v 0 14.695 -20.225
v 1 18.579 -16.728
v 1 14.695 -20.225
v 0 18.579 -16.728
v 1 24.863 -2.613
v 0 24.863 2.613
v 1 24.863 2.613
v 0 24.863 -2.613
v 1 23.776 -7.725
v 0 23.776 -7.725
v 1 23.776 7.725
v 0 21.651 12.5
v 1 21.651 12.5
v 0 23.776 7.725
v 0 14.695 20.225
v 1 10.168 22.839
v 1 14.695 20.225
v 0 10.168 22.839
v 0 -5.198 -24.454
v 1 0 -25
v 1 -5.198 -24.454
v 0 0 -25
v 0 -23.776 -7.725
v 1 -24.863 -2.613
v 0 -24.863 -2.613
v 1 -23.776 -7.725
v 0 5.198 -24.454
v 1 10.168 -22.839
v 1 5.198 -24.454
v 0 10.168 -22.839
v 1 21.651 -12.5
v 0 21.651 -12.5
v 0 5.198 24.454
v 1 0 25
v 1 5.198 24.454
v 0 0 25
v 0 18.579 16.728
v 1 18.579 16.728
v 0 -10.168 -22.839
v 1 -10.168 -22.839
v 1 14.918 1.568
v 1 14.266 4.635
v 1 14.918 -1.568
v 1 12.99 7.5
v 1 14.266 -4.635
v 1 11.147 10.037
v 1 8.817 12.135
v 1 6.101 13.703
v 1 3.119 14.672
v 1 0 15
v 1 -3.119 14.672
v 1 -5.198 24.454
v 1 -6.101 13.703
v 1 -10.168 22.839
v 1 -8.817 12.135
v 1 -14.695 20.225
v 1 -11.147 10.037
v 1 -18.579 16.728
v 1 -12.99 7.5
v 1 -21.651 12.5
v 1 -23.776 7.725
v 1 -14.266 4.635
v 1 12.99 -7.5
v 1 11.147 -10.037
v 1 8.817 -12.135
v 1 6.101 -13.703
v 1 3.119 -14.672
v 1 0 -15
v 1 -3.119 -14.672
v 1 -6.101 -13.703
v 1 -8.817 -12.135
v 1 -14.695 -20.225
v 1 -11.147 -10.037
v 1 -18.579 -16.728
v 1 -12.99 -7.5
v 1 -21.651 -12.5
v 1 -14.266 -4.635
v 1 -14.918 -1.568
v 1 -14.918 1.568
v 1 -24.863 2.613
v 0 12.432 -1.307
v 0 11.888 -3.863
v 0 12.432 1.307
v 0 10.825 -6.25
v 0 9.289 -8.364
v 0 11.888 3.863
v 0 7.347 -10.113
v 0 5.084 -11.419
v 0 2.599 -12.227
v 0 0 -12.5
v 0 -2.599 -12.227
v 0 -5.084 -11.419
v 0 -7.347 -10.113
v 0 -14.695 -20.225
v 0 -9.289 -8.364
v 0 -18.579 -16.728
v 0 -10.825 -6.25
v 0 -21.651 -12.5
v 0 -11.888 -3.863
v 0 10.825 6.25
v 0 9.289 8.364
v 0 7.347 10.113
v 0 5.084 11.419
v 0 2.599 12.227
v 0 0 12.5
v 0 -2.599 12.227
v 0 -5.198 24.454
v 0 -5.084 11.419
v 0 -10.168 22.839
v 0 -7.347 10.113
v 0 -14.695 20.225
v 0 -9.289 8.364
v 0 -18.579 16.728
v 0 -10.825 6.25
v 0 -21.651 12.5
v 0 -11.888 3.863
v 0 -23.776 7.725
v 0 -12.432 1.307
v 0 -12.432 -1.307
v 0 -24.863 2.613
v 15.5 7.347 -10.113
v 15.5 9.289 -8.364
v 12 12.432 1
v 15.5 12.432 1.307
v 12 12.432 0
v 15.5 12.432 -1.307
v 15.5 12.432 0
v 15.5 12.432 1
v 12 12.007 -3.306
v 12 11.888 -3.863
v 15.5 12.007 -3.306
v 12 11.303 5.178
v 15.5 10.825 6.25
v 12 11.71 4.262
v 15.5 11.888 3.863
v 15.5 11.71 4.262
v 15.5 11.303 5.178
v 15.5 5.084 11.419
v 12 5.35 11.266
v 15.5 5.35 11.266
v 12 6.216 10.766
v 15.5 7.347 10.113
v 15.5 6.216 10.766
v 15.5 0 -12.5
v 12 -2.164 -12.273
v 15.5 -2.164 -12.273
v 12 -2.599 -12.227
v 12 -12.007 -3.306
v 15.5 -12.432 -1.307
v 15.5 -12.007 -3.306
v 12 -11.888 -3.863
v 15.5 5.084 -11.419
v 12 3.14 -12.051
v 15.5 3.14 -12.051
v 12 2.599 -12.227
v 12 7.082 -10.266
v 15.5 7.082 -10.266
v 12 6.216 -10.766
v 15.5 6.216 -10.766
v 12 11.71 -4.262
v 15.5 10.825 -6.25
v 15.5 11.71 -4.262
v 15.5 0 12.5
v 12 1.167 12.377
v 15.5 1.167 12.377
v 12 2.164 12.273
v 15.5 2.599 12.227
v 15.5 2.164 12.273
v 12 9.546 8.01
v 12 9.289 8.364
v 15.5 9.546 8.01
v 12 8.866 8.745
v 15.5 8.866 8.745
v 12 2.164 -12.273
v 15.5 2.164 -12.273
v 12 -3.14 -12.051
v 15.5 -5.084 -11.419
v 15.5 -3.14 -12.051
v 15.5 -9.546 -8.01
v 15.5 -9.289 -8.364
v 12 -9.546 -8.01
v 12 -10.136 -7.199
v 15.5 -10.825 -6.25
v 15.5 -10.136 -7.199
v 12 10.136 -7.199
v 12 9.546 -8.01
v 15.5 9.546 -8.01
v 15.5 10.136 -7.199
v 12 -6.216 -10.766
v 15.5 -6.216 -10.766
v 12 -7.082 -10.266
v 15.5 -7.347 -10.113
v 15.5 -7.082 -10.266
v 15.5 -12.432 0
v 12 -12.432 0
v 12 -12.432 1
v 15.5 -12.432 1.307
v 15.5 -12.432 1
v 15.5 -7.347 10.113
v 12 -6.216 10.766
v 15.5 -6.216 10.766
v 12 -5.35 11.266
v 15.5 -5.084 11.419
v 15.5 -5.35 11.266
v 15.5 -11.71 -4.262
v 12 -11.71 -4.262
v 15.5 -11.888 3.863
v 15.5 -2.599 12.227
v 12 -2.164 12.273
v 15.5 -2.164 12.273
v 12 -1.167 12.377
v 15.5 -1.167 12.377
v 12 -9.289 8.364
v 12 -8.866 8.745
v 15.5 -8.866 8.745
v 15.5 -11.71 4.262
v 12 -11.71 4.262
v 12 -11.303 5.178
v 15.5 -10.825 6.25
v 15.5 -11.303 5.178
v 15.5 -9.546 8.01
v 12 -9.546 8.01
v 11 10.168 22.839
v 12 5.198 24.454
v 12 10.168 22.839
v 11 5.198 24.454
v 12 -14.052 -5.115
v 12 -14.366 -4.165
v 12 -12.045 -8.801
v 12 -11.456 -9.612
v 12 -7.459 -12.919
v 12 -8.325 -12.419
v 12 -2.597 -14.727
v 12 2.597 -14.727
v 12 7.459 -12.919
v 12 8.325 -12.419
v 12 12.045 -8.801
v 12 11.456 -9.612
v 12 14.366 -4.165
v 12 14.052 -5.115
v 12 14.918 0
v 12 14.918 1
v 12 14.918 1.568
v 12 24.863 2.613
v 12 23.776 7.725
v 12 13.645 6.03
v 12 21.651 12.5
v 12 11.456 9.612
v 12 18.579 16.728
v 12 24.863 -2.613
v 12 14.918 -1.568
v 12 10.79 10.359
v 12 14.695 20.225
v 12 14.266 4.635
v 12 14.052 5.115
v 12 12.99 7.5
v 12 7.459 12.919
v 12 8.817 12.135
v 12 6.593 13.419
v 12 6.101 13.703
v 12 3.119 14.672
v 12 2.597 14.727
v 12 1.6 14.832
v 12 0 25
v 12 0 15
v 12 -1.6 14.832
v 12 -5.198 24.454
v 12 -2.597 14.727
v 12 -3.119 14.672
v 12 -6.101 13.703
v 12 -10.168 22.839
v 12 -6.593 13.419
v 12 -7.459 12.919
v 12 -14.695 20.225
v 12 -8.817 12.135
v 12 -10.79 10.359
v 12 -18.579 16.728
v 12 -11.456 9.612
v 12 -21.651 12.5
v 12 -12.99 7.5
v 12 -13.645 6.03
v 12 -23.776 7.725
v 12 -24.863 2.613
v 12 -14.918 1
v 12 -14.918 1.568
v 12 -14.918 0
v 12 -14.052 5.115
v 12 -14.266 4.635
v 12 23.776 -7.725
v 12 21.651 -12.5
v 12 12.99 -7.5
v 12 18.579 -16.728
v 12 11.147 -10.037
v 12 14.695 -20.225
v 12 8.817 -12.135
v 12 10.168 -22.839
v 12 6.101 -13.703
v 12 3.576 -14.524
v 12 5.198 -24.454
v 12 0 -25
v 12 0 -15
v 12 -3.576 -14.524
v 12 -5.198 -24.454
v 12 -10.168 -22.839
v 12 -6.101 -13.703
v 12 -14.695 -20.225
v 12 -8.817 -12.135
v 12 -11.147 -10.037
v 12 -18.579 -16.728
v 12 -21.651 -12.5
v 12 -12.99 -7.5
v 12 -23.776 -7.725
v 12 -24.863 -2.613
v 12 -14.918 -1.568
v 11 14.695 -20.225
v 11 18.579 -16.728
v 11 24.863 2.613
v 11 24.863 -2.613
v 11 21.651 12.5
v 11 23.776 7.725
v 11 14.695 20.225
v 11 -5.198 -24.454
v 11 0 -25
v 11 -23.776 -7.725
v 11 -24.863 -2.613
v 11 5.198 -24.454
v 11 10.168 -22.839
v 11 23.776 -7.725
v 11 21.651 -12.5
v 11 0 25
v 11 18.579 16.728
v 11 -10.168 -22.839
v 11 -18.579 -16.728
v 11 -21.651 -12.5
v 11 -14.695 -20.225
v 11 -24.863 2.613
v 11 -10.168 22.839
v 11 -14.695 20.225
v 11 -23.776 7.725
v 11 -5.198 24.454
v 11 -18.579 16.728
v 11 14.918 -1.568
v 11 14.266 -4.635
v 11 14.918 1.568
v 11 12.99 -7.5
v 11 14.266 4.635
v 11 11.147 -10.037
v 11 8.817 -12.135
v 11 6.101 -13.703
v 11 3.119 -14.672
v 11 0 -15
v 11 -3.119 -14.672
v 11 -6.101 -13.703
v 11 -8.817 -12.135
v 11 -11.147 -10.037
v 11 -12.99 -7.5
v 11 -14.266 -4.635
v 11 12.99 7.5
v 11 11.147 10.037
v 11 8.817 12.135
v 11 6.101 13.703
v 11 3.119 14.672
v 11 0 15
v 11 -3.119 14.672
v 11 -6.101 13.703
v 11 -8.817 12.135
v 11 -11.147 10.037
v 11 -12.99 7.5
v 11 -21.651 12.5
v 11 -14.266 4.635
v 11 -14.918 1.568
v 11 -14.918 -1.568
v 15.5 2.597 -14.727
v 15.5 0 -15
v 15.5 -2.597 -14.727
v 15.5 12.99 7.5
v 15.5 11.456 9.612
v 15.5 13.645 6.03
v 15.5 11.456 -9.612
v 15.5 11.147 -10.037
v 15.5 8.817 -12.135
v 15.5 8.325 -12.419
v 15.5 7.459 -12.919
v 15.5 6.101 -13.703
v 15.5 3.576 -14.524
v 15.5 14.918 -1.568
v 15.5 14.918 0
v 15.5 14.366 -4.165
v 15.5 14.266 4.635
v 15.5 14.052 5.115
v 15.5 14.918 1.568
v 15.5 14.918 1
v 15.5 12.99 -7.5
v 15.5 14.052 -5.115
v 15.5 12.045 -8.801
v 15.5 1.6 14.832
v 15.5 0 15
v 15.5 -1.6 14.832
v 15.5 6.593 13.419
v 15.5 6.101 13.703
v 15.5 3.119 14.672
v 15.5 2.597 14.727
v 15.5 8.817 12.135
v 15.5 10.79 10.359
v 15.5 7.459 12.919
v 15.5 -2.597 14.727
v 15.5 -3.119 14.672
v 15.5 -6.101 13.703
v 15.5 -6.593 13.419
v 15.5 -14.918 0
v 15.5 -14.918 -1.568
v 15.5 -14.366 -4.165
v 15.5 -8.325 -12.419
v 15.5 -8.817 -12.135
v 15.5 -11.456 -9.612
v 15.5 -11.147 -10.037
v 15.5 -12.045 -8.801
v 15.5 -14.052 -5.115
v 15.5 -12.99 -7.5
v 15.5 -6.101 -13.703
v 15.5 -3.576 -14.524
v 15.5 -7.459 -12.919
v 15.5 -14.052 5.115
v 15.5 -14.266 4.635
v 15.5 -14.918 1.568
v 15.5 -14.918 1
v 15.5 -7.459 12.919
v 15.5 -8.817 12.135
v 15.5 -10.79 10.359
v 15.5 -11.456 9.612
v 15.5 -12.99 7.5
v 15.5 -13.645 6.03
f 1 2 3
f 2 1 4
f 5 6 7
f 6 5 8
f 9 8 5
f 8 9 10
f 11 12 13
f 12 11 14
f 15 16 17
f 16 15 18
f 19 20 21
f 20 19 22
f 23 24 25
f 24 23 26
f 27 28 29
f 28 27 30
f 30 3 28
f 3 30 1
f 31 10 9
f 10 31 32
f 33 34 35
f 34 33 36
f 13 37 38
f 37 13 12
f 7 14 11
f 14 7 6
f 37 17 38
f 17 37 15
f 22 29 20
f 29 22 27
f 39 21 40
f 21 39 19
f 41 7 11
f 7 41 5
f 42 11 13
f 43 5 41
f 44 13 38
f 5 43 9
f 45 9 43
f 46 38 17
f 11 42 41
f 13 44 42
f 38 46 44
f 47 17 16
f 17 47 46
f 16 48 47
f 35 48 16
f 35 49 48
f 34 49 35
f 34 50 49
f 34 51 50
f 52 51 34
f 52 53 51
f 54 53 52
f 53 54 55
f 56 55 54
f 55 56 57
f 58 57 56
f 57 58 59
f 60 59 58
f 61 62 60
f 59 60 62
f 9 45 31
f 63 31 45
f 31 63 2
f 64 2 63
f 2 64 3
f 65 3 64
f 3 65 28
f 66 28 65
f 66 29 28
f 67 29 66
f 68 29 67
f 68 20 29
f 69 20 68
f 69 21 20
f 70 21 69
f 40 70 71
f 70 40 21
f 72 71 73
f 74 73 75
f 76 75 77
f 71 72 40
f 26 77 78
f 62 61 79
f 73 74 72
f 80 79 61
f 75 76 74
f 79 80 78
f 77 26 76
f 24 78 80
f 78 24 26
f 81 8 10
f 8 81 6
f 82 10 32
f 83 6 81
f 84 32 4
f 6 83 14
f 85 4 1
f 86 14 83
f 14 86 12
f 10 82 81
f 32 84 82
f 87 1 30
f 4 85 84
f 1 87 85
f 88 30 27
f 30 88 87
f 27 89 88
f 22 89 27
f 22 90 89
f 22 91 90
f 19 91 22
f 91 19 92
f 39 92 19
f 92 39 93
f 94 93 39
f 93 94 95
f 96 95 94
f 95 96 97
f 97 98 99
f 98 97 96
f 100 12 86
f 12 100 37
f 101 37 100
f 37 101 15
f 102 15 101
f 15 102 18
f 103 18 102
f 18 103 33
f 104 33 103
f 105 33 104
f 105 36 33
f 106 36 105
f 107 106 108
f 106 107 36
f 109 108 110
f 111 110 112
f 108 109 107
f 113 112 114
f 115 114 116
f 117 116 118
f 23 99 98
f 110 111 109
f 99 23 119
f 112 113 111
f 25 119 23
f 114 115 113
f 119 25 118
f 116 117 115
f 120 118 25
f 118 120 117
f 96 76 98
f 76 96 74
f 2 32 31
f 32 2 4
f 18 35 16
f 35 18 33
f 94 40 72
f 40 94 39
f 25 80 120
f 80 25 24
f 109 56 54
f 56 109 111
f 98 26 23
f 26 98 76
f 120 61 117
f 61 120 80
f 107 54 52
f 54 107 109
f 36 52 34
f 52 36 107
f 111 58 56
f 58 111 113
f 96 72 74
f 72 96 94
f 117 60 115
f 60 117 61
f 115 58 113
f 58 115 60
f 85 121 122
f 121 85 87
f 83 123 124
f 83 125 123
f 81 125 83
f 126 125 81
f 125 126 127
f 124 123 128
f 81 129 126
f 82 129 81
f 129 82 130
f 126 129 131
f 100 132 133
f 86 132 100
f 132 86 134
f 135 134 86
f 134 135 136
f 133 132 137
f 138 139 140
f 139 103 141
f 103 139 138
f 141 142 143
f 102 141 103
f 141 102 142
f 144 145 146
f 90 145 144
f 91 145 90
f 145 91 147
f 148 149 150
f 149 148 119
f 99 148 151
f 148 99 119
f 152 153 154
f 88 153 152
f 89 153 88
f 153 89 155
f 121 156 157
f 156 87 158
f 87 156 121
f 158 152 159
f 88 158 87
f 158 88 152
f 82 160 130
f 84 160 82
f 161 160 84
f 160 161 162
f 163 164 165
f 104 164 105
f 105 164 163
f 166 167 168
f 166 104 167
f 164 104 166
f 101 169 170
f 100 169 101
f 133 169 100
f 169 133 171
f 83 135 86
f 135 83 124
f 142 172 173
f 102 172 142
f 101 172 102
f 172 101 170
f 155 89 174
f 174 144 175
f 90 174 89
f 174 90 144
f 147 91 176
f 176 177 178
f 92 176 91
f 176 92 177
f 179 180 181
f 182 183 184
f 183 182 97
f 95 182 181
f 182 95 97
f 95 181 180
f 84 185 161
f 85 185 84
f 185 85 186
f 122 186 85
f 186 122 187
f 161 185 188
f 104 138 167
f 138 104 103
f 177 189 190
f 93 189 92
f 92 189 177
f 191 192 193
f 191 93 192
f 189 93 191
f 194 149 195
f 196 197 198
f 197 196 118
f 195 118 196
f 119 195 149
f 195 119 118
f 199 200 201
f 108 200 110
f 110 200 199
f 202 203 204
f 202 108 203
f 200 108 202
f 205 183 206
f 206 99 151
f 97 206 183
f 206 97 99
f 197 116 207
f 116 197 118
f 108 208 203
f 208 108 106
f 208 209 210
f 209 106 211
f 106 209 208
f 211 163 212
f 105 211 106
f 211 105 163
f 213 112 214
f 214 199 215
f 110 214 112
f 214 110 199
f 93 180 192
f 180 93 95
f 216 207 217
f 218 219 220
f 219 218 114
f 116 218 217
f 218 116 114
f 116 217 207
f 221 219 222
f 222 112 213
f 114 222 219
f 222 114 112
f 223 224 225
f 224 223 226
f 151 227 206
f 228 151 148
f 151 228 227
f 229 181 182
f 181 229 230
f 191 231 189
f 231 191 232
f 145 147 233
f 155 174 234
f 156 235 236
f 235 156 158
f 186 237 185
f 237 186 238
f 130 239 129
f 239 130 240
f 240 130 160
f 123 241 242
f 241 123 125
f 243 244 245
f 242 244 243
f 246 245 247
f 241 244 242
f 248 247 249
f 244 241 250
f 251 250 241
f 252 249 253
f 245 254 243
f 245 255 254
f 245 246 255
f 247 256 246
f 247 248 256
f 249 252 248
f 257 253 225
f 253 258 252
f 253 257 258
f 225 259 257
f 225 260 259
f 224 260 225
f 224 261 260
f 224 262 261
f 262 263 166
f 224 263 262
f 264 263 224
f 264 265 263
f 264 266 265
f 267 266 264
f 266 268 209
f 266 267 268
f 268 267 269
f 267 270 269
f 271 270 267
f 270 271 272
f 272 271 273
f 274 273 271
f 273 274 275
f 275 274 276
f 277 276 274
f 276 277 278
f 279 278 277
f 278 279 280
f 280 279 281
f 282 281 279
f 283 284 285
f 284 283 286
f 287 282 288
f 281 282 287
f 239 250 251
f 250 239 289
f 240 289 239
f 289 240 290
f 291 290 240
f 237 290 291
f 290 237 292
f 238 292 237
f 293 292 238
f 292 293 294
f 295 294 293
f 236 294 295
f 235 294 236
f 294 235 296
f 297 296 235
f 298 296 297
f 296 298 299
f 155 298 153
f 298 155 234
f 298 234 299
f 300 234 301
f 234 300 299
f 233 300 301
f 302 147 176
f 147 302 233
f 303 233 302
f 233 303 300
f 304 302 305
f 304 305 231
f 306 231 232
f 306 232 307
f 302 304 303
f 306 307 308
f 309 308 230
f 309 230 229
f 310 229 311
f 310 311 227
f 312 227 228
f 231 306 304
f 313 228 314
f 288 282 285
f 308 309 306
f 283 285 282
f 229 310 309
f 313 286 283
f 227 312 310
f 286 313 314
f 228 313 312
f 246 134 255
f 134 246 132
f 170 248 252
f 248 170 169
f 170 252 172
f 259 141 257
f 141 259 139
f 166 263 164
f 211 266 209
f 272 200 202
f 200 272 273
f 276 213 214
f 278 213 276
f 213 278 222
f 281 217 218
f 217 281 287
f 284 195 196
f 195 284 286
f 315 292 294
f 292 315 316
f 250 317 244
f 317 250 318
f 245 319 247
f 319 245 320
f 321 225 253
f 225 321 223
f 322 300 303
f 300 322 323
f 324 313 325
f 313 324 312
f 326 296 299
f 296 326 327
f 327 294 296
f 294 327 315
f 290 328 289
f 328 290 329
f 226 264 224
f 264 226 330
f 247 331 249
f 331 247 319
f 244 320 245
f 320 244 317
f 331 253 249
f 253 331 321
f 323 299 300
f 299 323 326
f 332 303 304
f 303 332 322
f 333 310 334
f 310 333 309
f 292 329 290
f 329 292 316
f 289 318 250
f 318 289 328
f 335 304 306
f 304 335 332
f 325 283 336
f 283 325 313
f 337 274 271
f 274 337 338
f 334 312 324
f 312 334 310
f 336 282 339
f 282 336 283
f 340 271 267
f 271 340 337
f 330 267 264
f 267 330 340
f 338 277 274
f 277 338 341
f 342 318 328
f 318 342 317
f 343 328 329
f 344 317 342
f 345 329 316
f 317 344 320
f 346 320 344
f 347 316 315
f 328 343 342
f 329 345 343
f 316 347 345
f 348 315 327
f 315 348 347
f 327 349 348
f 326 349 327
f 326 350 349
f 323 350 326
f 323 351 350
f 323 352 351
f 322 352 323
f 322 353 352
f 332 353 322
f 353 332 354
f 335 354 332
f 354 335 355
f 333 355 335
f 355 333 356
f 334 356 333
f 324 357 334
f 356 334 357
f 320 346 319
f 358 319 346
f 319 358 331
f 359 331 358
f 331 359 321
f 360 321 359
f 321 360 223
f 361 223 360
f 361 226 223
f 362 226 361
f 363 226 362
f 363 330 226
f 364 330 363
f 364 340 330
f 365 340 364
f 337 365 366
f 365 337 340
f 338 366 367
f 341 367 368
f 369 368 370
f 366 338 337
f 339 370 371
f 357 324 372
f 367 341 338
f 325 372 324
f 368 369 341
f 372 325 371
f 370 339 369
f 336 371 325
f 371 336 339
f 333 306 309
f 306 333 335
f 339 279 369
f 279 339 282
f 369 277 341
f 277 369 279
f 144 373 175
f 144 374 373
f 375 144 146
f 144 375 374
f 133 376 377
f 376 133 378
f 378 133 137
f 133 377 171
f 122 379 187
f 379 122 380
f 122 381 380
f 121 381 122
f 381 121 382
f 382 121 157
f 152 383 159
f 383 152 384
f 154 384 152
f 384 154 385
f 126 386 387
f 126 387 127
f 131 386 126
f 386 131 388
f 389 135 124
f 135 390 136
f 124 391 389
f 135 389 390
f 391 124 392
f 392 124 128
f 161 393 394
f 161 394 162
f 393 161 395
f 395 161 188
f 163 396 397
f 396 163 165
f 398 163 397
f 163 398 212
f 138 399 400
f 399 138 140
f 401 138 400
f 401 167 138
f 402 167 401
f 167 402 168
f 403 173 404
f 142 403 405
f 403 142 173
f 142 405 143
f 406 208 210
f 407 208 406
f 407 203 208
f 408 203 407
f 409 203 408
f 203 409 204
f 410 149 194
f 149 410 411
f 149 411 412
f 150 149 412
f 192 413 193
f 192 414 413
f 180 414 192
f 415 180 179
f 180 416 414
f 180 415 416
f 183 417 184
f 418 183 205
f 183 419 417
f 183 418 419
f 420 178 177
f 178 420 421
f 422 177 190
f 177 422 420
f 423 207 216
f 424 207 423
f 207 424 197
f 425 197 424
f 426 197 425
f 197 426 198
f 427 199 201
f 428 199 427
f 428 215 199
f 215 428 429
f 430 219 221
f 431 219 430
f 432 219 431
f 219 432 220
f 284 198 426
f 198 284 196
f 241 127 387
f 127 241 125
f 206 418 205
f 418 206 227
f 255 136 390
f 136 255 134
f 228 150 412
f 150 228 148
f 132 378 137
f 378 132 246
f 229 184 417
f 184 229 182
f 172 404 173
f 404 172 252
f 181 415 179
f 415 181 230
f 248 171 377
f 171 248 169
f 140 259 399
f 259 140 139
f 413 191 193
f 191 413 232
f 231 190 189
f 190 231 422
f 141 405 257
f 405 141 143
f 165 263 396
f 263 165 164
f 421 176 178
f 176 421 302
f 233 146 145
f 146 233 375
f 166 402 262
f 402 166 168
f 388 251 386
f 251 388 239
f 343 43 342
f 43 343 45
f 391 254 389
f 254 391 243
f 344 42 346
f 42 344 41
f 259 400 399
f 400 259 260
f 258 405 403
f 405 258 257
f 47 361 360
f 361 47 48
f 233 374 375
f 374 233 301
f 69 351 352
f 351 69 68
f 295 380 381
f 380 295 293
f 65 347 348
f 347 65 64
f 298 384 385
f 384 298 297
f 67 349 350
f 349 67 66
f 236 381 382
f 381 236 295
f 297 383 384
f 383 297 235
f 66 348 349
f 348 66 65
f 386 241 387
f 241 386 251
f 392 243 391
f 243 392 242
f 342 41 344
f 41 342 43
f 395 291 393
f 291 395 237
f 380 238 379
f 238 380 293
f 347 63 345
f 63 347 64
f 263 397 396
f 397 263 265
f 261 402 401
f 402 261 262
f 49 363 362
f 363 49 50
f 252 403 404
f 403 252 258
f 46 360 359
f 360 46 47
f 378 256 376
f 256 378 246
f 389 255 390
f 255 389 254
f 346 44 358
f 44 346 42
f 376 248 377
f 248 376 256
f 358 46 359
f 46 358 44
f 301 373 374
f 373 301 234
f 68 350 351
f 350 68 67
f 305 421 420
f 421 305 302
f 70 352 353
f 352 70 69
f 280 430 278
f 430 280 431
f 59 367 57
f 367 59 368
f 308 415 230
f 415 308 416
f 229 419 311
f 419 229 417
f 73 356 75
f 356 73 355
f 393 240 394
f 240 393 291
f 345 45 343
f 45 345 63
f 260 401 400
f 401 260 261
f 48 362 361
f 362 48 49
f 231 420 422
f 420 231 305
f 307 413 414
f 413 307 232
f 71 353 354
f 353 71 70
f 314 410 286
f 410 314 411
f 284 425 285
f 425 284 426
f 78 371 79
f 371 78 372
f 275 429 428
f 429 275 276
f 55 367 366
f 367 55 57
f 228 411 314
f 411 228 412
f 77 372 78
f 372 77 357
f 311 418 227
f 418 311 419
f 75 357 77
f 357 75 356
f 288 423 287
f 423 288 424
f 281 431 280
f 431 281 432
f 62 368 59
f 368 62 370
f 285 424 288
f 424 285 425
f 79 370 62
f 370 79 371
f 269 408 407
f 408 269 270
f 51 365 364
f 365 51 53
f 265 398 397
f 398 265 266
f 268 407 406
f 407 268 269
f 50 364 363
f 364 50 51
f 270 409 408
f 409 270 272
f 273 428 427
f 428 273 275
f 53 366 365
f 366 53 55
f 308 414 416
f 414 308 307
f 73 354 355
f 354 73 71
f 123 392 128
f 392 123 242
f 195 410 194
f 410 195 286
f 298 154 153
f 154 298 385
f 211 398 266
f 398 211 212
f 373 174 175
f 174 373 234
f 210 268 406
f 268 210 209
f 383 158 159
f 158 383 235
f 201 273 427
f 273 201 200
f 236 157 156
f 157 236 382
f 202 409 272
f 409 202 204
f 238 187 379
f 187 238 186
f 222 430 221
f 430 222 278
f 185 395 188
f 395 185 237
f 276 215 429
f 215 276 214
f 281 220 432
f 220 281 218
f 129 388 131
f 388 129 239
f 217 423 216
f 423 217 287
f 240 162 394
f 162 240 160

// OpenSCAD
difference(){
rotate([0,90,0]) cylinder(h=1, r1=25,r2=25);
    rotate([0,90,0]) #cylinder(h=14.5, r1=12.5,r2=12.5);
}
difference(){
rotate([0,90,0]) translate([0,0,11])cylinder(h=1, r1=25,r2=25);
    rotate([0,90,0]) #cylinder(h=15.5, r1=12.5,r2=12.5);
}
difference(){
rotate([0,90,0]) cylinder(h=15.5, r1=15,r2=15);
    rotate([0,90,0]) #cylinder(h=15.5, r1=12.5,r2=12.5);
    #translate([12,-15,0]) cube([3.5,30,1]);
rotate(a=[10,0,0])#translate([12,0,-15]) cube([3.5,1,30]);
    rotate(a=[30,0,0])#translate([12,0,-15]) cube([3.5,1,30]);
    rotate(a=[50,0,0])#translate([12,0,-15]) cube([3.5,1,30]);
    rotate(a=[70,0,0])#translate([12,0,-15]) cube([3.5,1,30]);
    rotate(a=[90,0,0])#translate([12,0,-15]) cube([3.5,1,30]);
  rotate(a=[80,0,0]){
      rotate(a=[10,0,0])#translate([12,0,-15]) cube([3.5,1,30]);
    rotate(a=[30,0,0])#translate([12,0,-15]) cube([3.5,1,30]);
    rotate(a=[50,0,0])#translate([12,0,-15]) cube([3.5,1,30]);
    rotate(a=[70,0,0])#translate([12,0,-15]) cube([3.5,1,30]);
    rotate(a=[90,0,0])#translate([12,0,-15]) cube([3.5,1,30]);
  }
}
